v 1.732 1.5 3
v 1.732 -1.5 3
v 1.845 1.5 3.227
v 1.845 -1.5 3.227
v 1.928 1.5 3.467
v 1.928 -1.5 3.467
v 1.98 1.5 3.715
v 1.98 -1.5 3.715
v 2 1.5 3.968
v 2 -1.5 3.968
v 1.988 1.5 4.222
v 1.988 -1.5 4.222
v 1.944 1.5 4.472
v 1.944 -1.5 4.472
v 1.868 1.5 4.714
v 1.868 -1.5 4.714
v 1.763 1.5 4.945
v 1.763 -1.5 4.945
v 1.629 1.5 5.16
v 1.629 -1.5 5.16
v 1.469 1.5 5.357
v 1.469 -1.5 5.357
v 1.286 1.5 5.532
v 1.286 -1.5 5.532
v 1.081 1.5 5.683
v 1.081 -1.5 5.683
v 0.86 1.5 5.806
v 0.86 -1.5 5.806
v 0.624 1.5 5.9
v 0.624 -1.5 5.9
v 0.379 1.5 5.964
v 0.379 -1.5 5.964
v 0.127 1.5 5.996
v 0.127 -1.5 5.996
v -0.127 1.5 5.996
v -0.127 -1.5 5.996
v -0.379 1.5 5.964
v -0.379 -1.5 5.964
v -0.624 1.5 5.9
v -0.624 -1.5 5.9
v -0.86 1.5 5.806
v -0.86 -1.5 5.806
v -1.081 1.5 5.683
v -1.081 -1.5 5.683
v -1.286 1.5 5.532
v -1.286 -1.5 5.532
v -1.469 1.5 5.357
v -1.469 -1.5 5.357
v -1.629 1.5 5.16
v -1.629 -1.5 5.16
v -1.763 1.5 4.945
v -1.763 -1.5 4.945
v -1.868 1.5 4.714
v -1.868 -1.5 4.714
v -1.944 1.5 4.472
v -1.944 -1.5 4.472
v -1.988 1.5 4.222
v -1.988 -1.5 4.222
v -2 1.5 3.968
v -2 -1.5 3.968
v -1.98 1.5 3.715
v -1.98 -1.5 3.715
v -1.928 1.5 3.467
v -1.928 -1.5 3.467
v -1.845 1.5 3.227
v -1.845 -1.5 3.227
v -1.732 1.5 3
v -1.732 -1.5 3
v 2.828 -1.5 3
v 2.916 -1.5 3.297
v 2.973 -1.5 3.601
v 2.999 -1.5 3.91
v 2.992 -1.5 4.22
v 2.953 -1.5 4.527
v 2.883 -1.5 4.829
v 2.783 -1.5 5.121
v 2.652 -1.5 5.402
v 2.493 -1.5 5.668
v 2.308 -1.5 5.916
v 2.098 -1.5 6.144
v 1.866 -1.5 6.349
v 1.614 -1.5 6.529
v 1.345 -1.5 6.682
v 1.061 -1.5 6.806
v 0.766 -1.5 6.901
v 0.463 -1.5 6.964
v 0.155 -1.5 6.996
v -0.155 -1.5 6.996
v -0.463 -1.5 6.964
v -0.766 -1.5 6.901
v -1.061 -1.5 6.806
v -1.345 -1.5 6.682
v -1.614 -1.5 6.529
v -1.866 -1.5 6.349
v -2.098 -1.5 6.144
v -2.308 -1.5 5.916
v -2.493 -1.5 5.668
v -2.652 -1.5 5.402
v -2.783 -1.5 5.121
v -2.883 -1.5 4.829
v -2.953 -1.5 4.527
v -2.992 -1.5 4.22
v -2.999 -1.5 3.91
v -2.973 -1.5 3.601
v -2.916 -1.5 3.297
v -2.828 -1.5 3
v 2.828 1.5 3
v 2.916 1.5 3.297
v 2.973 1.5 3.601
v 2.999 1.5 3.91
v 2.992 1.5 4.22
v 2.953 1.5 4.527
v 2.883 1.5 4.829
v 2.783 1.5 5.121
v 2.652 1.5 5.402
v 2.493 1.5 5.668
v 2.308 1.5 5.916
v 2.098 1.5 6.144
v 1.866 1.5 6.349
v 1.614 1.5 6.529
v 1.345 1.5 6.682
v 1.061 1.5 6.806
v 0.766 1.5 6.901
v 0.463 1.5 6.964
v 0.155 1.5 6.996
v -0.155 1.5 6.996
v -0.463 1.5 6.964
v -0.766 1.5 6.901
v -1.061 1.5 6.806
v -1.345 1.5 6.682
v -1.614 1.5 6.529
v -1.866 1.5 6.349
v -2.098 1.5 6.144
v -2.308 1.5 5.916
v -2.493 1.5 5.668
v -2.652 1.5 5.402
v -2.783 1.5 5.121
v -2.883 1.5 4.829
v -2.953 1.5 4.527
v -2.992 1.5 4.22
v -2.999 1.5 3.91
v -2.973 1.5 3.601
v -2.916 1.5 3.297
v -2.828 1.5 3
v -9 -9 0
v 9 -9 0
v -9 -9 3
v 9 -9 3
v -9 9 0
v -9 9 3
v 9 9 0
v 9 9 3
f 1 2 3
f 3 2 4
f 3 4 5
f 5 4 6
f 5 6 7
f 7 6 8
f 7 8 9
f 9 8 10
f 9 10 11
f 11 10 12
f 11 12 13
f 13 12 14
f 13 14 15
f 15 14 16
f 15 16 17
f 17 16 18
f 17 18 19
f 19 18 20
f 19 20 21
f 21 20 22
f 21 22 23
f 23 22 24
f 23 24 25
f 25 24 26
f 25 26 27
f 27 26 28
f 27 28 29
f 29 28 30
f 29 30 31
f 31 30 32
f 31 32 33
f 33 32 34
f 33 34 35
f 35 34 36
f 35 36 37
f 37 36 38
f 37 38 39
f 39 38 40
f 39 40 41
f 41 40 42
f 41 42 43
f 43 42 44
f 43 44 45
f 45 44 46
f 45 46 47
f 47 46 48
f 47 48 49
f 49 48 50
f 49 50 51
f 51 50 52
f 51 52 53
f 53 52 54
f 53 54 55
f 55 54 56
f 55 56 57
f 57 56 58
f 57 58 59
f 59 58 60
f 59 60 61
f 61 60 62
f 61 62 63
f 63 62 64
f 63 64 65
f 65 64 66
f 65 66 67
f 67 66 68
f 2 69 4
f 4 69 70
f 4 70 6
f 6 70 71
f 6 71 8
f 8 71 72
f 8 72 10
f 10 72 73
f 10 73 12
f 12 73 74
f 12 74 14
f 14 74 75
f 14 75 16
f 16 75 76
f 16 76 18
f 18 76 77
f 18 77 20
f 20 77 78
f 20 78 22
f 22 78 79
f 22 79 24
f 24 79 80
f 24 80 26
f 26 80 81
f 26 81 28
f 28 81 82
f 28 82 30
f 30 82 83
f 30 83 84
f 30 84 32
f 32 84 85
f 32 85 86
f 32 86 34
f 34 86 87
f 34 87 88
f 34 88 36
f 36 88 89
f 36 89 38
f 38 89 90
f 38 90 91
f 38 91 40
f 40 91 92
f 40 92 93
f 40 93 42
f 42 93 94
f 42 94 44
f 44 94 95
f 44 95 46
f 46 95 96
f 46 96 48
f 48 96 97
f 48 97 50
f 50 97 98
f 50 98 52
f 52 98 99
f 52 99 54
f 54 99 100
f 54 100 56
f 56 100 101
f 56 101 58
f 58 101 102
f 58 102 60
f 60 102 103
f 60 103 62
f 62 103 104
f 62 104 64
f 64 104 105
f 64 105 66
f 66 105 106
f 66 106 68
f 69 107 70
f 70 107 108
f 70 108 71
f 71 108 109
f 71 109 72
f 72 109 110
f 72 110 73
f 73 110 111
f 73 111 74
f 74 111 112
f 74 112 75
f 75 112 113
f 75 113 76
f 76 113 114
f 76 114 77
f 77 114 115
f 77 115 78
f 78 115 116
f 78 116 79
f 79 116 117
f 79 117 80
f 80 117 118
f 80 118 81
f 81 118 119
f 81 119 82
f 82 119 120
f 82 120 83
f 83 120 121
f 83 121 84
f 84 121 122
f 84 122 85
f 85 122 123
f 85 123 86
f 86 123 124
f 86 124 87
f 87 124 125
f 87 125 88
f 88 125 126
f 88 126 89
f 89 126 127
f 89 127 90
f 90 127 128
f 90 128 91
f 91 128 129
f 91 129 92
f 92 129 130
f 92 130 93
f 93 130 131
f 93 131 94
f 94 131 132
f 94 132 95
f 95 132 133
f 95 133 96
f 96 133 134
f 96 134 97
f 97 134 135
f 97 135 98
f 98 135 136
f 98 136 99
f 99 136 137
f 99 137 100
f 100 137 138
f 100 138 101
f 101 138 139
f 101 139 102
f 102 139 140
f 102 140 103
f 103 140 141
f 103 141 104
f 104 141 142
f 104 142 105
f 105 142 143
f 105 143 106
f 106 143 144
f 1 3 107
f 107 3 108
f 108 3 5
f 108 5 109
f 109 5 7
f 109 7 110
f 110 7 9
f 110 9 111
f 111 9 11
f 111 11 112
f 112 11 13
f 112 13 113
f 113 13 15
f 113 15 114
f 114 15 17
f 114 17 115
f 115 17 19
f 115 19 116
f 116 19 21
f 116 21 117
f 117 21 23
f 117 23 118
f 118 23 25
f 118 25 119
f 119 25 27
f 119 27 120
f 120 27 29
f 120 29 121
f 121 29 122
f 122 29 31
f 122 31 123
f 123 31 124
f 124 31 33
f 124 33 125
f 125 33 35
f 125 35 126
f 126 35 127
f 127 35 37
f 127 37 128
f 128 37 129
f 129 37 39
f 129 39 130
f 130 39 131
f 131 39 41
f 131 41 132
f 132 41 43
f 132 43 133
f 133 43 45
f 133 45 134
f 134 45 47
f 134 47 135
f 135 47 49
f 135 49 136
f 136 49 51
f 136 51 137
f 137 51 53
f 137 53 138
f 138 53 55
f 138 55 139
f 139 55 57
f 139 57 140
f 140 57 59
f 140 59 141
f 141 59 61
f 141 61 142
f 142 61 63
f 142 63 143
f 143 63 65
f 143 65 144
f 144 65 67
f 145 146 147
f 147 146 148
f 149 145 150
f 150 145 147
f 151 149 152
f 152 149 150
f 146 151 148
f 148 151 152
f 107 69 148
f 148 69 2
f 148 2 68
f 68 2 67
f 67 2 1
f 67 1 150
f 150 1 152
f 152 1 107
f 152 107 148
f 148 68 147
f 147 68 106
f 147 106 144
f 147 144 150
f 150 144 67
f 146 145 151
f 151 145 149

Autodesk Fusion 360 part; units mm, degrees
sketch "Sketch1" plane through (0, 0, 0) normal (0, 0, 1) x (1, 0, 0)
  line L0 (9, 9) -> (-9, 9)
  line L1 (-9, 9) -> (-9, -9)
  line L2 (-9, -9) -> (9, -9)
  line L3 (9, -9) -> (9, 9)
  line L4 (9, 9) -> (-9, -9) construction
  line L5 (-9, 9) -> (9, -9) construction
  dimension "d1" = 18
  dimension "d2" = 18
extrude "Extrude1" add sketch "Sketch1" along normal blind 3
sketch "Sketch3" plane through (0, 0, 0) normal (0, 1, 0) x (1, 0, 0)
  circle A0 centre (0, -4) radius 3
  circle A1 centre (0, -4) radius 2
  dimension "d5" = 6
  dimension "d6" = 4
extrude "Extrude2" add sketch "Sketch3" along normal mid plane 3
